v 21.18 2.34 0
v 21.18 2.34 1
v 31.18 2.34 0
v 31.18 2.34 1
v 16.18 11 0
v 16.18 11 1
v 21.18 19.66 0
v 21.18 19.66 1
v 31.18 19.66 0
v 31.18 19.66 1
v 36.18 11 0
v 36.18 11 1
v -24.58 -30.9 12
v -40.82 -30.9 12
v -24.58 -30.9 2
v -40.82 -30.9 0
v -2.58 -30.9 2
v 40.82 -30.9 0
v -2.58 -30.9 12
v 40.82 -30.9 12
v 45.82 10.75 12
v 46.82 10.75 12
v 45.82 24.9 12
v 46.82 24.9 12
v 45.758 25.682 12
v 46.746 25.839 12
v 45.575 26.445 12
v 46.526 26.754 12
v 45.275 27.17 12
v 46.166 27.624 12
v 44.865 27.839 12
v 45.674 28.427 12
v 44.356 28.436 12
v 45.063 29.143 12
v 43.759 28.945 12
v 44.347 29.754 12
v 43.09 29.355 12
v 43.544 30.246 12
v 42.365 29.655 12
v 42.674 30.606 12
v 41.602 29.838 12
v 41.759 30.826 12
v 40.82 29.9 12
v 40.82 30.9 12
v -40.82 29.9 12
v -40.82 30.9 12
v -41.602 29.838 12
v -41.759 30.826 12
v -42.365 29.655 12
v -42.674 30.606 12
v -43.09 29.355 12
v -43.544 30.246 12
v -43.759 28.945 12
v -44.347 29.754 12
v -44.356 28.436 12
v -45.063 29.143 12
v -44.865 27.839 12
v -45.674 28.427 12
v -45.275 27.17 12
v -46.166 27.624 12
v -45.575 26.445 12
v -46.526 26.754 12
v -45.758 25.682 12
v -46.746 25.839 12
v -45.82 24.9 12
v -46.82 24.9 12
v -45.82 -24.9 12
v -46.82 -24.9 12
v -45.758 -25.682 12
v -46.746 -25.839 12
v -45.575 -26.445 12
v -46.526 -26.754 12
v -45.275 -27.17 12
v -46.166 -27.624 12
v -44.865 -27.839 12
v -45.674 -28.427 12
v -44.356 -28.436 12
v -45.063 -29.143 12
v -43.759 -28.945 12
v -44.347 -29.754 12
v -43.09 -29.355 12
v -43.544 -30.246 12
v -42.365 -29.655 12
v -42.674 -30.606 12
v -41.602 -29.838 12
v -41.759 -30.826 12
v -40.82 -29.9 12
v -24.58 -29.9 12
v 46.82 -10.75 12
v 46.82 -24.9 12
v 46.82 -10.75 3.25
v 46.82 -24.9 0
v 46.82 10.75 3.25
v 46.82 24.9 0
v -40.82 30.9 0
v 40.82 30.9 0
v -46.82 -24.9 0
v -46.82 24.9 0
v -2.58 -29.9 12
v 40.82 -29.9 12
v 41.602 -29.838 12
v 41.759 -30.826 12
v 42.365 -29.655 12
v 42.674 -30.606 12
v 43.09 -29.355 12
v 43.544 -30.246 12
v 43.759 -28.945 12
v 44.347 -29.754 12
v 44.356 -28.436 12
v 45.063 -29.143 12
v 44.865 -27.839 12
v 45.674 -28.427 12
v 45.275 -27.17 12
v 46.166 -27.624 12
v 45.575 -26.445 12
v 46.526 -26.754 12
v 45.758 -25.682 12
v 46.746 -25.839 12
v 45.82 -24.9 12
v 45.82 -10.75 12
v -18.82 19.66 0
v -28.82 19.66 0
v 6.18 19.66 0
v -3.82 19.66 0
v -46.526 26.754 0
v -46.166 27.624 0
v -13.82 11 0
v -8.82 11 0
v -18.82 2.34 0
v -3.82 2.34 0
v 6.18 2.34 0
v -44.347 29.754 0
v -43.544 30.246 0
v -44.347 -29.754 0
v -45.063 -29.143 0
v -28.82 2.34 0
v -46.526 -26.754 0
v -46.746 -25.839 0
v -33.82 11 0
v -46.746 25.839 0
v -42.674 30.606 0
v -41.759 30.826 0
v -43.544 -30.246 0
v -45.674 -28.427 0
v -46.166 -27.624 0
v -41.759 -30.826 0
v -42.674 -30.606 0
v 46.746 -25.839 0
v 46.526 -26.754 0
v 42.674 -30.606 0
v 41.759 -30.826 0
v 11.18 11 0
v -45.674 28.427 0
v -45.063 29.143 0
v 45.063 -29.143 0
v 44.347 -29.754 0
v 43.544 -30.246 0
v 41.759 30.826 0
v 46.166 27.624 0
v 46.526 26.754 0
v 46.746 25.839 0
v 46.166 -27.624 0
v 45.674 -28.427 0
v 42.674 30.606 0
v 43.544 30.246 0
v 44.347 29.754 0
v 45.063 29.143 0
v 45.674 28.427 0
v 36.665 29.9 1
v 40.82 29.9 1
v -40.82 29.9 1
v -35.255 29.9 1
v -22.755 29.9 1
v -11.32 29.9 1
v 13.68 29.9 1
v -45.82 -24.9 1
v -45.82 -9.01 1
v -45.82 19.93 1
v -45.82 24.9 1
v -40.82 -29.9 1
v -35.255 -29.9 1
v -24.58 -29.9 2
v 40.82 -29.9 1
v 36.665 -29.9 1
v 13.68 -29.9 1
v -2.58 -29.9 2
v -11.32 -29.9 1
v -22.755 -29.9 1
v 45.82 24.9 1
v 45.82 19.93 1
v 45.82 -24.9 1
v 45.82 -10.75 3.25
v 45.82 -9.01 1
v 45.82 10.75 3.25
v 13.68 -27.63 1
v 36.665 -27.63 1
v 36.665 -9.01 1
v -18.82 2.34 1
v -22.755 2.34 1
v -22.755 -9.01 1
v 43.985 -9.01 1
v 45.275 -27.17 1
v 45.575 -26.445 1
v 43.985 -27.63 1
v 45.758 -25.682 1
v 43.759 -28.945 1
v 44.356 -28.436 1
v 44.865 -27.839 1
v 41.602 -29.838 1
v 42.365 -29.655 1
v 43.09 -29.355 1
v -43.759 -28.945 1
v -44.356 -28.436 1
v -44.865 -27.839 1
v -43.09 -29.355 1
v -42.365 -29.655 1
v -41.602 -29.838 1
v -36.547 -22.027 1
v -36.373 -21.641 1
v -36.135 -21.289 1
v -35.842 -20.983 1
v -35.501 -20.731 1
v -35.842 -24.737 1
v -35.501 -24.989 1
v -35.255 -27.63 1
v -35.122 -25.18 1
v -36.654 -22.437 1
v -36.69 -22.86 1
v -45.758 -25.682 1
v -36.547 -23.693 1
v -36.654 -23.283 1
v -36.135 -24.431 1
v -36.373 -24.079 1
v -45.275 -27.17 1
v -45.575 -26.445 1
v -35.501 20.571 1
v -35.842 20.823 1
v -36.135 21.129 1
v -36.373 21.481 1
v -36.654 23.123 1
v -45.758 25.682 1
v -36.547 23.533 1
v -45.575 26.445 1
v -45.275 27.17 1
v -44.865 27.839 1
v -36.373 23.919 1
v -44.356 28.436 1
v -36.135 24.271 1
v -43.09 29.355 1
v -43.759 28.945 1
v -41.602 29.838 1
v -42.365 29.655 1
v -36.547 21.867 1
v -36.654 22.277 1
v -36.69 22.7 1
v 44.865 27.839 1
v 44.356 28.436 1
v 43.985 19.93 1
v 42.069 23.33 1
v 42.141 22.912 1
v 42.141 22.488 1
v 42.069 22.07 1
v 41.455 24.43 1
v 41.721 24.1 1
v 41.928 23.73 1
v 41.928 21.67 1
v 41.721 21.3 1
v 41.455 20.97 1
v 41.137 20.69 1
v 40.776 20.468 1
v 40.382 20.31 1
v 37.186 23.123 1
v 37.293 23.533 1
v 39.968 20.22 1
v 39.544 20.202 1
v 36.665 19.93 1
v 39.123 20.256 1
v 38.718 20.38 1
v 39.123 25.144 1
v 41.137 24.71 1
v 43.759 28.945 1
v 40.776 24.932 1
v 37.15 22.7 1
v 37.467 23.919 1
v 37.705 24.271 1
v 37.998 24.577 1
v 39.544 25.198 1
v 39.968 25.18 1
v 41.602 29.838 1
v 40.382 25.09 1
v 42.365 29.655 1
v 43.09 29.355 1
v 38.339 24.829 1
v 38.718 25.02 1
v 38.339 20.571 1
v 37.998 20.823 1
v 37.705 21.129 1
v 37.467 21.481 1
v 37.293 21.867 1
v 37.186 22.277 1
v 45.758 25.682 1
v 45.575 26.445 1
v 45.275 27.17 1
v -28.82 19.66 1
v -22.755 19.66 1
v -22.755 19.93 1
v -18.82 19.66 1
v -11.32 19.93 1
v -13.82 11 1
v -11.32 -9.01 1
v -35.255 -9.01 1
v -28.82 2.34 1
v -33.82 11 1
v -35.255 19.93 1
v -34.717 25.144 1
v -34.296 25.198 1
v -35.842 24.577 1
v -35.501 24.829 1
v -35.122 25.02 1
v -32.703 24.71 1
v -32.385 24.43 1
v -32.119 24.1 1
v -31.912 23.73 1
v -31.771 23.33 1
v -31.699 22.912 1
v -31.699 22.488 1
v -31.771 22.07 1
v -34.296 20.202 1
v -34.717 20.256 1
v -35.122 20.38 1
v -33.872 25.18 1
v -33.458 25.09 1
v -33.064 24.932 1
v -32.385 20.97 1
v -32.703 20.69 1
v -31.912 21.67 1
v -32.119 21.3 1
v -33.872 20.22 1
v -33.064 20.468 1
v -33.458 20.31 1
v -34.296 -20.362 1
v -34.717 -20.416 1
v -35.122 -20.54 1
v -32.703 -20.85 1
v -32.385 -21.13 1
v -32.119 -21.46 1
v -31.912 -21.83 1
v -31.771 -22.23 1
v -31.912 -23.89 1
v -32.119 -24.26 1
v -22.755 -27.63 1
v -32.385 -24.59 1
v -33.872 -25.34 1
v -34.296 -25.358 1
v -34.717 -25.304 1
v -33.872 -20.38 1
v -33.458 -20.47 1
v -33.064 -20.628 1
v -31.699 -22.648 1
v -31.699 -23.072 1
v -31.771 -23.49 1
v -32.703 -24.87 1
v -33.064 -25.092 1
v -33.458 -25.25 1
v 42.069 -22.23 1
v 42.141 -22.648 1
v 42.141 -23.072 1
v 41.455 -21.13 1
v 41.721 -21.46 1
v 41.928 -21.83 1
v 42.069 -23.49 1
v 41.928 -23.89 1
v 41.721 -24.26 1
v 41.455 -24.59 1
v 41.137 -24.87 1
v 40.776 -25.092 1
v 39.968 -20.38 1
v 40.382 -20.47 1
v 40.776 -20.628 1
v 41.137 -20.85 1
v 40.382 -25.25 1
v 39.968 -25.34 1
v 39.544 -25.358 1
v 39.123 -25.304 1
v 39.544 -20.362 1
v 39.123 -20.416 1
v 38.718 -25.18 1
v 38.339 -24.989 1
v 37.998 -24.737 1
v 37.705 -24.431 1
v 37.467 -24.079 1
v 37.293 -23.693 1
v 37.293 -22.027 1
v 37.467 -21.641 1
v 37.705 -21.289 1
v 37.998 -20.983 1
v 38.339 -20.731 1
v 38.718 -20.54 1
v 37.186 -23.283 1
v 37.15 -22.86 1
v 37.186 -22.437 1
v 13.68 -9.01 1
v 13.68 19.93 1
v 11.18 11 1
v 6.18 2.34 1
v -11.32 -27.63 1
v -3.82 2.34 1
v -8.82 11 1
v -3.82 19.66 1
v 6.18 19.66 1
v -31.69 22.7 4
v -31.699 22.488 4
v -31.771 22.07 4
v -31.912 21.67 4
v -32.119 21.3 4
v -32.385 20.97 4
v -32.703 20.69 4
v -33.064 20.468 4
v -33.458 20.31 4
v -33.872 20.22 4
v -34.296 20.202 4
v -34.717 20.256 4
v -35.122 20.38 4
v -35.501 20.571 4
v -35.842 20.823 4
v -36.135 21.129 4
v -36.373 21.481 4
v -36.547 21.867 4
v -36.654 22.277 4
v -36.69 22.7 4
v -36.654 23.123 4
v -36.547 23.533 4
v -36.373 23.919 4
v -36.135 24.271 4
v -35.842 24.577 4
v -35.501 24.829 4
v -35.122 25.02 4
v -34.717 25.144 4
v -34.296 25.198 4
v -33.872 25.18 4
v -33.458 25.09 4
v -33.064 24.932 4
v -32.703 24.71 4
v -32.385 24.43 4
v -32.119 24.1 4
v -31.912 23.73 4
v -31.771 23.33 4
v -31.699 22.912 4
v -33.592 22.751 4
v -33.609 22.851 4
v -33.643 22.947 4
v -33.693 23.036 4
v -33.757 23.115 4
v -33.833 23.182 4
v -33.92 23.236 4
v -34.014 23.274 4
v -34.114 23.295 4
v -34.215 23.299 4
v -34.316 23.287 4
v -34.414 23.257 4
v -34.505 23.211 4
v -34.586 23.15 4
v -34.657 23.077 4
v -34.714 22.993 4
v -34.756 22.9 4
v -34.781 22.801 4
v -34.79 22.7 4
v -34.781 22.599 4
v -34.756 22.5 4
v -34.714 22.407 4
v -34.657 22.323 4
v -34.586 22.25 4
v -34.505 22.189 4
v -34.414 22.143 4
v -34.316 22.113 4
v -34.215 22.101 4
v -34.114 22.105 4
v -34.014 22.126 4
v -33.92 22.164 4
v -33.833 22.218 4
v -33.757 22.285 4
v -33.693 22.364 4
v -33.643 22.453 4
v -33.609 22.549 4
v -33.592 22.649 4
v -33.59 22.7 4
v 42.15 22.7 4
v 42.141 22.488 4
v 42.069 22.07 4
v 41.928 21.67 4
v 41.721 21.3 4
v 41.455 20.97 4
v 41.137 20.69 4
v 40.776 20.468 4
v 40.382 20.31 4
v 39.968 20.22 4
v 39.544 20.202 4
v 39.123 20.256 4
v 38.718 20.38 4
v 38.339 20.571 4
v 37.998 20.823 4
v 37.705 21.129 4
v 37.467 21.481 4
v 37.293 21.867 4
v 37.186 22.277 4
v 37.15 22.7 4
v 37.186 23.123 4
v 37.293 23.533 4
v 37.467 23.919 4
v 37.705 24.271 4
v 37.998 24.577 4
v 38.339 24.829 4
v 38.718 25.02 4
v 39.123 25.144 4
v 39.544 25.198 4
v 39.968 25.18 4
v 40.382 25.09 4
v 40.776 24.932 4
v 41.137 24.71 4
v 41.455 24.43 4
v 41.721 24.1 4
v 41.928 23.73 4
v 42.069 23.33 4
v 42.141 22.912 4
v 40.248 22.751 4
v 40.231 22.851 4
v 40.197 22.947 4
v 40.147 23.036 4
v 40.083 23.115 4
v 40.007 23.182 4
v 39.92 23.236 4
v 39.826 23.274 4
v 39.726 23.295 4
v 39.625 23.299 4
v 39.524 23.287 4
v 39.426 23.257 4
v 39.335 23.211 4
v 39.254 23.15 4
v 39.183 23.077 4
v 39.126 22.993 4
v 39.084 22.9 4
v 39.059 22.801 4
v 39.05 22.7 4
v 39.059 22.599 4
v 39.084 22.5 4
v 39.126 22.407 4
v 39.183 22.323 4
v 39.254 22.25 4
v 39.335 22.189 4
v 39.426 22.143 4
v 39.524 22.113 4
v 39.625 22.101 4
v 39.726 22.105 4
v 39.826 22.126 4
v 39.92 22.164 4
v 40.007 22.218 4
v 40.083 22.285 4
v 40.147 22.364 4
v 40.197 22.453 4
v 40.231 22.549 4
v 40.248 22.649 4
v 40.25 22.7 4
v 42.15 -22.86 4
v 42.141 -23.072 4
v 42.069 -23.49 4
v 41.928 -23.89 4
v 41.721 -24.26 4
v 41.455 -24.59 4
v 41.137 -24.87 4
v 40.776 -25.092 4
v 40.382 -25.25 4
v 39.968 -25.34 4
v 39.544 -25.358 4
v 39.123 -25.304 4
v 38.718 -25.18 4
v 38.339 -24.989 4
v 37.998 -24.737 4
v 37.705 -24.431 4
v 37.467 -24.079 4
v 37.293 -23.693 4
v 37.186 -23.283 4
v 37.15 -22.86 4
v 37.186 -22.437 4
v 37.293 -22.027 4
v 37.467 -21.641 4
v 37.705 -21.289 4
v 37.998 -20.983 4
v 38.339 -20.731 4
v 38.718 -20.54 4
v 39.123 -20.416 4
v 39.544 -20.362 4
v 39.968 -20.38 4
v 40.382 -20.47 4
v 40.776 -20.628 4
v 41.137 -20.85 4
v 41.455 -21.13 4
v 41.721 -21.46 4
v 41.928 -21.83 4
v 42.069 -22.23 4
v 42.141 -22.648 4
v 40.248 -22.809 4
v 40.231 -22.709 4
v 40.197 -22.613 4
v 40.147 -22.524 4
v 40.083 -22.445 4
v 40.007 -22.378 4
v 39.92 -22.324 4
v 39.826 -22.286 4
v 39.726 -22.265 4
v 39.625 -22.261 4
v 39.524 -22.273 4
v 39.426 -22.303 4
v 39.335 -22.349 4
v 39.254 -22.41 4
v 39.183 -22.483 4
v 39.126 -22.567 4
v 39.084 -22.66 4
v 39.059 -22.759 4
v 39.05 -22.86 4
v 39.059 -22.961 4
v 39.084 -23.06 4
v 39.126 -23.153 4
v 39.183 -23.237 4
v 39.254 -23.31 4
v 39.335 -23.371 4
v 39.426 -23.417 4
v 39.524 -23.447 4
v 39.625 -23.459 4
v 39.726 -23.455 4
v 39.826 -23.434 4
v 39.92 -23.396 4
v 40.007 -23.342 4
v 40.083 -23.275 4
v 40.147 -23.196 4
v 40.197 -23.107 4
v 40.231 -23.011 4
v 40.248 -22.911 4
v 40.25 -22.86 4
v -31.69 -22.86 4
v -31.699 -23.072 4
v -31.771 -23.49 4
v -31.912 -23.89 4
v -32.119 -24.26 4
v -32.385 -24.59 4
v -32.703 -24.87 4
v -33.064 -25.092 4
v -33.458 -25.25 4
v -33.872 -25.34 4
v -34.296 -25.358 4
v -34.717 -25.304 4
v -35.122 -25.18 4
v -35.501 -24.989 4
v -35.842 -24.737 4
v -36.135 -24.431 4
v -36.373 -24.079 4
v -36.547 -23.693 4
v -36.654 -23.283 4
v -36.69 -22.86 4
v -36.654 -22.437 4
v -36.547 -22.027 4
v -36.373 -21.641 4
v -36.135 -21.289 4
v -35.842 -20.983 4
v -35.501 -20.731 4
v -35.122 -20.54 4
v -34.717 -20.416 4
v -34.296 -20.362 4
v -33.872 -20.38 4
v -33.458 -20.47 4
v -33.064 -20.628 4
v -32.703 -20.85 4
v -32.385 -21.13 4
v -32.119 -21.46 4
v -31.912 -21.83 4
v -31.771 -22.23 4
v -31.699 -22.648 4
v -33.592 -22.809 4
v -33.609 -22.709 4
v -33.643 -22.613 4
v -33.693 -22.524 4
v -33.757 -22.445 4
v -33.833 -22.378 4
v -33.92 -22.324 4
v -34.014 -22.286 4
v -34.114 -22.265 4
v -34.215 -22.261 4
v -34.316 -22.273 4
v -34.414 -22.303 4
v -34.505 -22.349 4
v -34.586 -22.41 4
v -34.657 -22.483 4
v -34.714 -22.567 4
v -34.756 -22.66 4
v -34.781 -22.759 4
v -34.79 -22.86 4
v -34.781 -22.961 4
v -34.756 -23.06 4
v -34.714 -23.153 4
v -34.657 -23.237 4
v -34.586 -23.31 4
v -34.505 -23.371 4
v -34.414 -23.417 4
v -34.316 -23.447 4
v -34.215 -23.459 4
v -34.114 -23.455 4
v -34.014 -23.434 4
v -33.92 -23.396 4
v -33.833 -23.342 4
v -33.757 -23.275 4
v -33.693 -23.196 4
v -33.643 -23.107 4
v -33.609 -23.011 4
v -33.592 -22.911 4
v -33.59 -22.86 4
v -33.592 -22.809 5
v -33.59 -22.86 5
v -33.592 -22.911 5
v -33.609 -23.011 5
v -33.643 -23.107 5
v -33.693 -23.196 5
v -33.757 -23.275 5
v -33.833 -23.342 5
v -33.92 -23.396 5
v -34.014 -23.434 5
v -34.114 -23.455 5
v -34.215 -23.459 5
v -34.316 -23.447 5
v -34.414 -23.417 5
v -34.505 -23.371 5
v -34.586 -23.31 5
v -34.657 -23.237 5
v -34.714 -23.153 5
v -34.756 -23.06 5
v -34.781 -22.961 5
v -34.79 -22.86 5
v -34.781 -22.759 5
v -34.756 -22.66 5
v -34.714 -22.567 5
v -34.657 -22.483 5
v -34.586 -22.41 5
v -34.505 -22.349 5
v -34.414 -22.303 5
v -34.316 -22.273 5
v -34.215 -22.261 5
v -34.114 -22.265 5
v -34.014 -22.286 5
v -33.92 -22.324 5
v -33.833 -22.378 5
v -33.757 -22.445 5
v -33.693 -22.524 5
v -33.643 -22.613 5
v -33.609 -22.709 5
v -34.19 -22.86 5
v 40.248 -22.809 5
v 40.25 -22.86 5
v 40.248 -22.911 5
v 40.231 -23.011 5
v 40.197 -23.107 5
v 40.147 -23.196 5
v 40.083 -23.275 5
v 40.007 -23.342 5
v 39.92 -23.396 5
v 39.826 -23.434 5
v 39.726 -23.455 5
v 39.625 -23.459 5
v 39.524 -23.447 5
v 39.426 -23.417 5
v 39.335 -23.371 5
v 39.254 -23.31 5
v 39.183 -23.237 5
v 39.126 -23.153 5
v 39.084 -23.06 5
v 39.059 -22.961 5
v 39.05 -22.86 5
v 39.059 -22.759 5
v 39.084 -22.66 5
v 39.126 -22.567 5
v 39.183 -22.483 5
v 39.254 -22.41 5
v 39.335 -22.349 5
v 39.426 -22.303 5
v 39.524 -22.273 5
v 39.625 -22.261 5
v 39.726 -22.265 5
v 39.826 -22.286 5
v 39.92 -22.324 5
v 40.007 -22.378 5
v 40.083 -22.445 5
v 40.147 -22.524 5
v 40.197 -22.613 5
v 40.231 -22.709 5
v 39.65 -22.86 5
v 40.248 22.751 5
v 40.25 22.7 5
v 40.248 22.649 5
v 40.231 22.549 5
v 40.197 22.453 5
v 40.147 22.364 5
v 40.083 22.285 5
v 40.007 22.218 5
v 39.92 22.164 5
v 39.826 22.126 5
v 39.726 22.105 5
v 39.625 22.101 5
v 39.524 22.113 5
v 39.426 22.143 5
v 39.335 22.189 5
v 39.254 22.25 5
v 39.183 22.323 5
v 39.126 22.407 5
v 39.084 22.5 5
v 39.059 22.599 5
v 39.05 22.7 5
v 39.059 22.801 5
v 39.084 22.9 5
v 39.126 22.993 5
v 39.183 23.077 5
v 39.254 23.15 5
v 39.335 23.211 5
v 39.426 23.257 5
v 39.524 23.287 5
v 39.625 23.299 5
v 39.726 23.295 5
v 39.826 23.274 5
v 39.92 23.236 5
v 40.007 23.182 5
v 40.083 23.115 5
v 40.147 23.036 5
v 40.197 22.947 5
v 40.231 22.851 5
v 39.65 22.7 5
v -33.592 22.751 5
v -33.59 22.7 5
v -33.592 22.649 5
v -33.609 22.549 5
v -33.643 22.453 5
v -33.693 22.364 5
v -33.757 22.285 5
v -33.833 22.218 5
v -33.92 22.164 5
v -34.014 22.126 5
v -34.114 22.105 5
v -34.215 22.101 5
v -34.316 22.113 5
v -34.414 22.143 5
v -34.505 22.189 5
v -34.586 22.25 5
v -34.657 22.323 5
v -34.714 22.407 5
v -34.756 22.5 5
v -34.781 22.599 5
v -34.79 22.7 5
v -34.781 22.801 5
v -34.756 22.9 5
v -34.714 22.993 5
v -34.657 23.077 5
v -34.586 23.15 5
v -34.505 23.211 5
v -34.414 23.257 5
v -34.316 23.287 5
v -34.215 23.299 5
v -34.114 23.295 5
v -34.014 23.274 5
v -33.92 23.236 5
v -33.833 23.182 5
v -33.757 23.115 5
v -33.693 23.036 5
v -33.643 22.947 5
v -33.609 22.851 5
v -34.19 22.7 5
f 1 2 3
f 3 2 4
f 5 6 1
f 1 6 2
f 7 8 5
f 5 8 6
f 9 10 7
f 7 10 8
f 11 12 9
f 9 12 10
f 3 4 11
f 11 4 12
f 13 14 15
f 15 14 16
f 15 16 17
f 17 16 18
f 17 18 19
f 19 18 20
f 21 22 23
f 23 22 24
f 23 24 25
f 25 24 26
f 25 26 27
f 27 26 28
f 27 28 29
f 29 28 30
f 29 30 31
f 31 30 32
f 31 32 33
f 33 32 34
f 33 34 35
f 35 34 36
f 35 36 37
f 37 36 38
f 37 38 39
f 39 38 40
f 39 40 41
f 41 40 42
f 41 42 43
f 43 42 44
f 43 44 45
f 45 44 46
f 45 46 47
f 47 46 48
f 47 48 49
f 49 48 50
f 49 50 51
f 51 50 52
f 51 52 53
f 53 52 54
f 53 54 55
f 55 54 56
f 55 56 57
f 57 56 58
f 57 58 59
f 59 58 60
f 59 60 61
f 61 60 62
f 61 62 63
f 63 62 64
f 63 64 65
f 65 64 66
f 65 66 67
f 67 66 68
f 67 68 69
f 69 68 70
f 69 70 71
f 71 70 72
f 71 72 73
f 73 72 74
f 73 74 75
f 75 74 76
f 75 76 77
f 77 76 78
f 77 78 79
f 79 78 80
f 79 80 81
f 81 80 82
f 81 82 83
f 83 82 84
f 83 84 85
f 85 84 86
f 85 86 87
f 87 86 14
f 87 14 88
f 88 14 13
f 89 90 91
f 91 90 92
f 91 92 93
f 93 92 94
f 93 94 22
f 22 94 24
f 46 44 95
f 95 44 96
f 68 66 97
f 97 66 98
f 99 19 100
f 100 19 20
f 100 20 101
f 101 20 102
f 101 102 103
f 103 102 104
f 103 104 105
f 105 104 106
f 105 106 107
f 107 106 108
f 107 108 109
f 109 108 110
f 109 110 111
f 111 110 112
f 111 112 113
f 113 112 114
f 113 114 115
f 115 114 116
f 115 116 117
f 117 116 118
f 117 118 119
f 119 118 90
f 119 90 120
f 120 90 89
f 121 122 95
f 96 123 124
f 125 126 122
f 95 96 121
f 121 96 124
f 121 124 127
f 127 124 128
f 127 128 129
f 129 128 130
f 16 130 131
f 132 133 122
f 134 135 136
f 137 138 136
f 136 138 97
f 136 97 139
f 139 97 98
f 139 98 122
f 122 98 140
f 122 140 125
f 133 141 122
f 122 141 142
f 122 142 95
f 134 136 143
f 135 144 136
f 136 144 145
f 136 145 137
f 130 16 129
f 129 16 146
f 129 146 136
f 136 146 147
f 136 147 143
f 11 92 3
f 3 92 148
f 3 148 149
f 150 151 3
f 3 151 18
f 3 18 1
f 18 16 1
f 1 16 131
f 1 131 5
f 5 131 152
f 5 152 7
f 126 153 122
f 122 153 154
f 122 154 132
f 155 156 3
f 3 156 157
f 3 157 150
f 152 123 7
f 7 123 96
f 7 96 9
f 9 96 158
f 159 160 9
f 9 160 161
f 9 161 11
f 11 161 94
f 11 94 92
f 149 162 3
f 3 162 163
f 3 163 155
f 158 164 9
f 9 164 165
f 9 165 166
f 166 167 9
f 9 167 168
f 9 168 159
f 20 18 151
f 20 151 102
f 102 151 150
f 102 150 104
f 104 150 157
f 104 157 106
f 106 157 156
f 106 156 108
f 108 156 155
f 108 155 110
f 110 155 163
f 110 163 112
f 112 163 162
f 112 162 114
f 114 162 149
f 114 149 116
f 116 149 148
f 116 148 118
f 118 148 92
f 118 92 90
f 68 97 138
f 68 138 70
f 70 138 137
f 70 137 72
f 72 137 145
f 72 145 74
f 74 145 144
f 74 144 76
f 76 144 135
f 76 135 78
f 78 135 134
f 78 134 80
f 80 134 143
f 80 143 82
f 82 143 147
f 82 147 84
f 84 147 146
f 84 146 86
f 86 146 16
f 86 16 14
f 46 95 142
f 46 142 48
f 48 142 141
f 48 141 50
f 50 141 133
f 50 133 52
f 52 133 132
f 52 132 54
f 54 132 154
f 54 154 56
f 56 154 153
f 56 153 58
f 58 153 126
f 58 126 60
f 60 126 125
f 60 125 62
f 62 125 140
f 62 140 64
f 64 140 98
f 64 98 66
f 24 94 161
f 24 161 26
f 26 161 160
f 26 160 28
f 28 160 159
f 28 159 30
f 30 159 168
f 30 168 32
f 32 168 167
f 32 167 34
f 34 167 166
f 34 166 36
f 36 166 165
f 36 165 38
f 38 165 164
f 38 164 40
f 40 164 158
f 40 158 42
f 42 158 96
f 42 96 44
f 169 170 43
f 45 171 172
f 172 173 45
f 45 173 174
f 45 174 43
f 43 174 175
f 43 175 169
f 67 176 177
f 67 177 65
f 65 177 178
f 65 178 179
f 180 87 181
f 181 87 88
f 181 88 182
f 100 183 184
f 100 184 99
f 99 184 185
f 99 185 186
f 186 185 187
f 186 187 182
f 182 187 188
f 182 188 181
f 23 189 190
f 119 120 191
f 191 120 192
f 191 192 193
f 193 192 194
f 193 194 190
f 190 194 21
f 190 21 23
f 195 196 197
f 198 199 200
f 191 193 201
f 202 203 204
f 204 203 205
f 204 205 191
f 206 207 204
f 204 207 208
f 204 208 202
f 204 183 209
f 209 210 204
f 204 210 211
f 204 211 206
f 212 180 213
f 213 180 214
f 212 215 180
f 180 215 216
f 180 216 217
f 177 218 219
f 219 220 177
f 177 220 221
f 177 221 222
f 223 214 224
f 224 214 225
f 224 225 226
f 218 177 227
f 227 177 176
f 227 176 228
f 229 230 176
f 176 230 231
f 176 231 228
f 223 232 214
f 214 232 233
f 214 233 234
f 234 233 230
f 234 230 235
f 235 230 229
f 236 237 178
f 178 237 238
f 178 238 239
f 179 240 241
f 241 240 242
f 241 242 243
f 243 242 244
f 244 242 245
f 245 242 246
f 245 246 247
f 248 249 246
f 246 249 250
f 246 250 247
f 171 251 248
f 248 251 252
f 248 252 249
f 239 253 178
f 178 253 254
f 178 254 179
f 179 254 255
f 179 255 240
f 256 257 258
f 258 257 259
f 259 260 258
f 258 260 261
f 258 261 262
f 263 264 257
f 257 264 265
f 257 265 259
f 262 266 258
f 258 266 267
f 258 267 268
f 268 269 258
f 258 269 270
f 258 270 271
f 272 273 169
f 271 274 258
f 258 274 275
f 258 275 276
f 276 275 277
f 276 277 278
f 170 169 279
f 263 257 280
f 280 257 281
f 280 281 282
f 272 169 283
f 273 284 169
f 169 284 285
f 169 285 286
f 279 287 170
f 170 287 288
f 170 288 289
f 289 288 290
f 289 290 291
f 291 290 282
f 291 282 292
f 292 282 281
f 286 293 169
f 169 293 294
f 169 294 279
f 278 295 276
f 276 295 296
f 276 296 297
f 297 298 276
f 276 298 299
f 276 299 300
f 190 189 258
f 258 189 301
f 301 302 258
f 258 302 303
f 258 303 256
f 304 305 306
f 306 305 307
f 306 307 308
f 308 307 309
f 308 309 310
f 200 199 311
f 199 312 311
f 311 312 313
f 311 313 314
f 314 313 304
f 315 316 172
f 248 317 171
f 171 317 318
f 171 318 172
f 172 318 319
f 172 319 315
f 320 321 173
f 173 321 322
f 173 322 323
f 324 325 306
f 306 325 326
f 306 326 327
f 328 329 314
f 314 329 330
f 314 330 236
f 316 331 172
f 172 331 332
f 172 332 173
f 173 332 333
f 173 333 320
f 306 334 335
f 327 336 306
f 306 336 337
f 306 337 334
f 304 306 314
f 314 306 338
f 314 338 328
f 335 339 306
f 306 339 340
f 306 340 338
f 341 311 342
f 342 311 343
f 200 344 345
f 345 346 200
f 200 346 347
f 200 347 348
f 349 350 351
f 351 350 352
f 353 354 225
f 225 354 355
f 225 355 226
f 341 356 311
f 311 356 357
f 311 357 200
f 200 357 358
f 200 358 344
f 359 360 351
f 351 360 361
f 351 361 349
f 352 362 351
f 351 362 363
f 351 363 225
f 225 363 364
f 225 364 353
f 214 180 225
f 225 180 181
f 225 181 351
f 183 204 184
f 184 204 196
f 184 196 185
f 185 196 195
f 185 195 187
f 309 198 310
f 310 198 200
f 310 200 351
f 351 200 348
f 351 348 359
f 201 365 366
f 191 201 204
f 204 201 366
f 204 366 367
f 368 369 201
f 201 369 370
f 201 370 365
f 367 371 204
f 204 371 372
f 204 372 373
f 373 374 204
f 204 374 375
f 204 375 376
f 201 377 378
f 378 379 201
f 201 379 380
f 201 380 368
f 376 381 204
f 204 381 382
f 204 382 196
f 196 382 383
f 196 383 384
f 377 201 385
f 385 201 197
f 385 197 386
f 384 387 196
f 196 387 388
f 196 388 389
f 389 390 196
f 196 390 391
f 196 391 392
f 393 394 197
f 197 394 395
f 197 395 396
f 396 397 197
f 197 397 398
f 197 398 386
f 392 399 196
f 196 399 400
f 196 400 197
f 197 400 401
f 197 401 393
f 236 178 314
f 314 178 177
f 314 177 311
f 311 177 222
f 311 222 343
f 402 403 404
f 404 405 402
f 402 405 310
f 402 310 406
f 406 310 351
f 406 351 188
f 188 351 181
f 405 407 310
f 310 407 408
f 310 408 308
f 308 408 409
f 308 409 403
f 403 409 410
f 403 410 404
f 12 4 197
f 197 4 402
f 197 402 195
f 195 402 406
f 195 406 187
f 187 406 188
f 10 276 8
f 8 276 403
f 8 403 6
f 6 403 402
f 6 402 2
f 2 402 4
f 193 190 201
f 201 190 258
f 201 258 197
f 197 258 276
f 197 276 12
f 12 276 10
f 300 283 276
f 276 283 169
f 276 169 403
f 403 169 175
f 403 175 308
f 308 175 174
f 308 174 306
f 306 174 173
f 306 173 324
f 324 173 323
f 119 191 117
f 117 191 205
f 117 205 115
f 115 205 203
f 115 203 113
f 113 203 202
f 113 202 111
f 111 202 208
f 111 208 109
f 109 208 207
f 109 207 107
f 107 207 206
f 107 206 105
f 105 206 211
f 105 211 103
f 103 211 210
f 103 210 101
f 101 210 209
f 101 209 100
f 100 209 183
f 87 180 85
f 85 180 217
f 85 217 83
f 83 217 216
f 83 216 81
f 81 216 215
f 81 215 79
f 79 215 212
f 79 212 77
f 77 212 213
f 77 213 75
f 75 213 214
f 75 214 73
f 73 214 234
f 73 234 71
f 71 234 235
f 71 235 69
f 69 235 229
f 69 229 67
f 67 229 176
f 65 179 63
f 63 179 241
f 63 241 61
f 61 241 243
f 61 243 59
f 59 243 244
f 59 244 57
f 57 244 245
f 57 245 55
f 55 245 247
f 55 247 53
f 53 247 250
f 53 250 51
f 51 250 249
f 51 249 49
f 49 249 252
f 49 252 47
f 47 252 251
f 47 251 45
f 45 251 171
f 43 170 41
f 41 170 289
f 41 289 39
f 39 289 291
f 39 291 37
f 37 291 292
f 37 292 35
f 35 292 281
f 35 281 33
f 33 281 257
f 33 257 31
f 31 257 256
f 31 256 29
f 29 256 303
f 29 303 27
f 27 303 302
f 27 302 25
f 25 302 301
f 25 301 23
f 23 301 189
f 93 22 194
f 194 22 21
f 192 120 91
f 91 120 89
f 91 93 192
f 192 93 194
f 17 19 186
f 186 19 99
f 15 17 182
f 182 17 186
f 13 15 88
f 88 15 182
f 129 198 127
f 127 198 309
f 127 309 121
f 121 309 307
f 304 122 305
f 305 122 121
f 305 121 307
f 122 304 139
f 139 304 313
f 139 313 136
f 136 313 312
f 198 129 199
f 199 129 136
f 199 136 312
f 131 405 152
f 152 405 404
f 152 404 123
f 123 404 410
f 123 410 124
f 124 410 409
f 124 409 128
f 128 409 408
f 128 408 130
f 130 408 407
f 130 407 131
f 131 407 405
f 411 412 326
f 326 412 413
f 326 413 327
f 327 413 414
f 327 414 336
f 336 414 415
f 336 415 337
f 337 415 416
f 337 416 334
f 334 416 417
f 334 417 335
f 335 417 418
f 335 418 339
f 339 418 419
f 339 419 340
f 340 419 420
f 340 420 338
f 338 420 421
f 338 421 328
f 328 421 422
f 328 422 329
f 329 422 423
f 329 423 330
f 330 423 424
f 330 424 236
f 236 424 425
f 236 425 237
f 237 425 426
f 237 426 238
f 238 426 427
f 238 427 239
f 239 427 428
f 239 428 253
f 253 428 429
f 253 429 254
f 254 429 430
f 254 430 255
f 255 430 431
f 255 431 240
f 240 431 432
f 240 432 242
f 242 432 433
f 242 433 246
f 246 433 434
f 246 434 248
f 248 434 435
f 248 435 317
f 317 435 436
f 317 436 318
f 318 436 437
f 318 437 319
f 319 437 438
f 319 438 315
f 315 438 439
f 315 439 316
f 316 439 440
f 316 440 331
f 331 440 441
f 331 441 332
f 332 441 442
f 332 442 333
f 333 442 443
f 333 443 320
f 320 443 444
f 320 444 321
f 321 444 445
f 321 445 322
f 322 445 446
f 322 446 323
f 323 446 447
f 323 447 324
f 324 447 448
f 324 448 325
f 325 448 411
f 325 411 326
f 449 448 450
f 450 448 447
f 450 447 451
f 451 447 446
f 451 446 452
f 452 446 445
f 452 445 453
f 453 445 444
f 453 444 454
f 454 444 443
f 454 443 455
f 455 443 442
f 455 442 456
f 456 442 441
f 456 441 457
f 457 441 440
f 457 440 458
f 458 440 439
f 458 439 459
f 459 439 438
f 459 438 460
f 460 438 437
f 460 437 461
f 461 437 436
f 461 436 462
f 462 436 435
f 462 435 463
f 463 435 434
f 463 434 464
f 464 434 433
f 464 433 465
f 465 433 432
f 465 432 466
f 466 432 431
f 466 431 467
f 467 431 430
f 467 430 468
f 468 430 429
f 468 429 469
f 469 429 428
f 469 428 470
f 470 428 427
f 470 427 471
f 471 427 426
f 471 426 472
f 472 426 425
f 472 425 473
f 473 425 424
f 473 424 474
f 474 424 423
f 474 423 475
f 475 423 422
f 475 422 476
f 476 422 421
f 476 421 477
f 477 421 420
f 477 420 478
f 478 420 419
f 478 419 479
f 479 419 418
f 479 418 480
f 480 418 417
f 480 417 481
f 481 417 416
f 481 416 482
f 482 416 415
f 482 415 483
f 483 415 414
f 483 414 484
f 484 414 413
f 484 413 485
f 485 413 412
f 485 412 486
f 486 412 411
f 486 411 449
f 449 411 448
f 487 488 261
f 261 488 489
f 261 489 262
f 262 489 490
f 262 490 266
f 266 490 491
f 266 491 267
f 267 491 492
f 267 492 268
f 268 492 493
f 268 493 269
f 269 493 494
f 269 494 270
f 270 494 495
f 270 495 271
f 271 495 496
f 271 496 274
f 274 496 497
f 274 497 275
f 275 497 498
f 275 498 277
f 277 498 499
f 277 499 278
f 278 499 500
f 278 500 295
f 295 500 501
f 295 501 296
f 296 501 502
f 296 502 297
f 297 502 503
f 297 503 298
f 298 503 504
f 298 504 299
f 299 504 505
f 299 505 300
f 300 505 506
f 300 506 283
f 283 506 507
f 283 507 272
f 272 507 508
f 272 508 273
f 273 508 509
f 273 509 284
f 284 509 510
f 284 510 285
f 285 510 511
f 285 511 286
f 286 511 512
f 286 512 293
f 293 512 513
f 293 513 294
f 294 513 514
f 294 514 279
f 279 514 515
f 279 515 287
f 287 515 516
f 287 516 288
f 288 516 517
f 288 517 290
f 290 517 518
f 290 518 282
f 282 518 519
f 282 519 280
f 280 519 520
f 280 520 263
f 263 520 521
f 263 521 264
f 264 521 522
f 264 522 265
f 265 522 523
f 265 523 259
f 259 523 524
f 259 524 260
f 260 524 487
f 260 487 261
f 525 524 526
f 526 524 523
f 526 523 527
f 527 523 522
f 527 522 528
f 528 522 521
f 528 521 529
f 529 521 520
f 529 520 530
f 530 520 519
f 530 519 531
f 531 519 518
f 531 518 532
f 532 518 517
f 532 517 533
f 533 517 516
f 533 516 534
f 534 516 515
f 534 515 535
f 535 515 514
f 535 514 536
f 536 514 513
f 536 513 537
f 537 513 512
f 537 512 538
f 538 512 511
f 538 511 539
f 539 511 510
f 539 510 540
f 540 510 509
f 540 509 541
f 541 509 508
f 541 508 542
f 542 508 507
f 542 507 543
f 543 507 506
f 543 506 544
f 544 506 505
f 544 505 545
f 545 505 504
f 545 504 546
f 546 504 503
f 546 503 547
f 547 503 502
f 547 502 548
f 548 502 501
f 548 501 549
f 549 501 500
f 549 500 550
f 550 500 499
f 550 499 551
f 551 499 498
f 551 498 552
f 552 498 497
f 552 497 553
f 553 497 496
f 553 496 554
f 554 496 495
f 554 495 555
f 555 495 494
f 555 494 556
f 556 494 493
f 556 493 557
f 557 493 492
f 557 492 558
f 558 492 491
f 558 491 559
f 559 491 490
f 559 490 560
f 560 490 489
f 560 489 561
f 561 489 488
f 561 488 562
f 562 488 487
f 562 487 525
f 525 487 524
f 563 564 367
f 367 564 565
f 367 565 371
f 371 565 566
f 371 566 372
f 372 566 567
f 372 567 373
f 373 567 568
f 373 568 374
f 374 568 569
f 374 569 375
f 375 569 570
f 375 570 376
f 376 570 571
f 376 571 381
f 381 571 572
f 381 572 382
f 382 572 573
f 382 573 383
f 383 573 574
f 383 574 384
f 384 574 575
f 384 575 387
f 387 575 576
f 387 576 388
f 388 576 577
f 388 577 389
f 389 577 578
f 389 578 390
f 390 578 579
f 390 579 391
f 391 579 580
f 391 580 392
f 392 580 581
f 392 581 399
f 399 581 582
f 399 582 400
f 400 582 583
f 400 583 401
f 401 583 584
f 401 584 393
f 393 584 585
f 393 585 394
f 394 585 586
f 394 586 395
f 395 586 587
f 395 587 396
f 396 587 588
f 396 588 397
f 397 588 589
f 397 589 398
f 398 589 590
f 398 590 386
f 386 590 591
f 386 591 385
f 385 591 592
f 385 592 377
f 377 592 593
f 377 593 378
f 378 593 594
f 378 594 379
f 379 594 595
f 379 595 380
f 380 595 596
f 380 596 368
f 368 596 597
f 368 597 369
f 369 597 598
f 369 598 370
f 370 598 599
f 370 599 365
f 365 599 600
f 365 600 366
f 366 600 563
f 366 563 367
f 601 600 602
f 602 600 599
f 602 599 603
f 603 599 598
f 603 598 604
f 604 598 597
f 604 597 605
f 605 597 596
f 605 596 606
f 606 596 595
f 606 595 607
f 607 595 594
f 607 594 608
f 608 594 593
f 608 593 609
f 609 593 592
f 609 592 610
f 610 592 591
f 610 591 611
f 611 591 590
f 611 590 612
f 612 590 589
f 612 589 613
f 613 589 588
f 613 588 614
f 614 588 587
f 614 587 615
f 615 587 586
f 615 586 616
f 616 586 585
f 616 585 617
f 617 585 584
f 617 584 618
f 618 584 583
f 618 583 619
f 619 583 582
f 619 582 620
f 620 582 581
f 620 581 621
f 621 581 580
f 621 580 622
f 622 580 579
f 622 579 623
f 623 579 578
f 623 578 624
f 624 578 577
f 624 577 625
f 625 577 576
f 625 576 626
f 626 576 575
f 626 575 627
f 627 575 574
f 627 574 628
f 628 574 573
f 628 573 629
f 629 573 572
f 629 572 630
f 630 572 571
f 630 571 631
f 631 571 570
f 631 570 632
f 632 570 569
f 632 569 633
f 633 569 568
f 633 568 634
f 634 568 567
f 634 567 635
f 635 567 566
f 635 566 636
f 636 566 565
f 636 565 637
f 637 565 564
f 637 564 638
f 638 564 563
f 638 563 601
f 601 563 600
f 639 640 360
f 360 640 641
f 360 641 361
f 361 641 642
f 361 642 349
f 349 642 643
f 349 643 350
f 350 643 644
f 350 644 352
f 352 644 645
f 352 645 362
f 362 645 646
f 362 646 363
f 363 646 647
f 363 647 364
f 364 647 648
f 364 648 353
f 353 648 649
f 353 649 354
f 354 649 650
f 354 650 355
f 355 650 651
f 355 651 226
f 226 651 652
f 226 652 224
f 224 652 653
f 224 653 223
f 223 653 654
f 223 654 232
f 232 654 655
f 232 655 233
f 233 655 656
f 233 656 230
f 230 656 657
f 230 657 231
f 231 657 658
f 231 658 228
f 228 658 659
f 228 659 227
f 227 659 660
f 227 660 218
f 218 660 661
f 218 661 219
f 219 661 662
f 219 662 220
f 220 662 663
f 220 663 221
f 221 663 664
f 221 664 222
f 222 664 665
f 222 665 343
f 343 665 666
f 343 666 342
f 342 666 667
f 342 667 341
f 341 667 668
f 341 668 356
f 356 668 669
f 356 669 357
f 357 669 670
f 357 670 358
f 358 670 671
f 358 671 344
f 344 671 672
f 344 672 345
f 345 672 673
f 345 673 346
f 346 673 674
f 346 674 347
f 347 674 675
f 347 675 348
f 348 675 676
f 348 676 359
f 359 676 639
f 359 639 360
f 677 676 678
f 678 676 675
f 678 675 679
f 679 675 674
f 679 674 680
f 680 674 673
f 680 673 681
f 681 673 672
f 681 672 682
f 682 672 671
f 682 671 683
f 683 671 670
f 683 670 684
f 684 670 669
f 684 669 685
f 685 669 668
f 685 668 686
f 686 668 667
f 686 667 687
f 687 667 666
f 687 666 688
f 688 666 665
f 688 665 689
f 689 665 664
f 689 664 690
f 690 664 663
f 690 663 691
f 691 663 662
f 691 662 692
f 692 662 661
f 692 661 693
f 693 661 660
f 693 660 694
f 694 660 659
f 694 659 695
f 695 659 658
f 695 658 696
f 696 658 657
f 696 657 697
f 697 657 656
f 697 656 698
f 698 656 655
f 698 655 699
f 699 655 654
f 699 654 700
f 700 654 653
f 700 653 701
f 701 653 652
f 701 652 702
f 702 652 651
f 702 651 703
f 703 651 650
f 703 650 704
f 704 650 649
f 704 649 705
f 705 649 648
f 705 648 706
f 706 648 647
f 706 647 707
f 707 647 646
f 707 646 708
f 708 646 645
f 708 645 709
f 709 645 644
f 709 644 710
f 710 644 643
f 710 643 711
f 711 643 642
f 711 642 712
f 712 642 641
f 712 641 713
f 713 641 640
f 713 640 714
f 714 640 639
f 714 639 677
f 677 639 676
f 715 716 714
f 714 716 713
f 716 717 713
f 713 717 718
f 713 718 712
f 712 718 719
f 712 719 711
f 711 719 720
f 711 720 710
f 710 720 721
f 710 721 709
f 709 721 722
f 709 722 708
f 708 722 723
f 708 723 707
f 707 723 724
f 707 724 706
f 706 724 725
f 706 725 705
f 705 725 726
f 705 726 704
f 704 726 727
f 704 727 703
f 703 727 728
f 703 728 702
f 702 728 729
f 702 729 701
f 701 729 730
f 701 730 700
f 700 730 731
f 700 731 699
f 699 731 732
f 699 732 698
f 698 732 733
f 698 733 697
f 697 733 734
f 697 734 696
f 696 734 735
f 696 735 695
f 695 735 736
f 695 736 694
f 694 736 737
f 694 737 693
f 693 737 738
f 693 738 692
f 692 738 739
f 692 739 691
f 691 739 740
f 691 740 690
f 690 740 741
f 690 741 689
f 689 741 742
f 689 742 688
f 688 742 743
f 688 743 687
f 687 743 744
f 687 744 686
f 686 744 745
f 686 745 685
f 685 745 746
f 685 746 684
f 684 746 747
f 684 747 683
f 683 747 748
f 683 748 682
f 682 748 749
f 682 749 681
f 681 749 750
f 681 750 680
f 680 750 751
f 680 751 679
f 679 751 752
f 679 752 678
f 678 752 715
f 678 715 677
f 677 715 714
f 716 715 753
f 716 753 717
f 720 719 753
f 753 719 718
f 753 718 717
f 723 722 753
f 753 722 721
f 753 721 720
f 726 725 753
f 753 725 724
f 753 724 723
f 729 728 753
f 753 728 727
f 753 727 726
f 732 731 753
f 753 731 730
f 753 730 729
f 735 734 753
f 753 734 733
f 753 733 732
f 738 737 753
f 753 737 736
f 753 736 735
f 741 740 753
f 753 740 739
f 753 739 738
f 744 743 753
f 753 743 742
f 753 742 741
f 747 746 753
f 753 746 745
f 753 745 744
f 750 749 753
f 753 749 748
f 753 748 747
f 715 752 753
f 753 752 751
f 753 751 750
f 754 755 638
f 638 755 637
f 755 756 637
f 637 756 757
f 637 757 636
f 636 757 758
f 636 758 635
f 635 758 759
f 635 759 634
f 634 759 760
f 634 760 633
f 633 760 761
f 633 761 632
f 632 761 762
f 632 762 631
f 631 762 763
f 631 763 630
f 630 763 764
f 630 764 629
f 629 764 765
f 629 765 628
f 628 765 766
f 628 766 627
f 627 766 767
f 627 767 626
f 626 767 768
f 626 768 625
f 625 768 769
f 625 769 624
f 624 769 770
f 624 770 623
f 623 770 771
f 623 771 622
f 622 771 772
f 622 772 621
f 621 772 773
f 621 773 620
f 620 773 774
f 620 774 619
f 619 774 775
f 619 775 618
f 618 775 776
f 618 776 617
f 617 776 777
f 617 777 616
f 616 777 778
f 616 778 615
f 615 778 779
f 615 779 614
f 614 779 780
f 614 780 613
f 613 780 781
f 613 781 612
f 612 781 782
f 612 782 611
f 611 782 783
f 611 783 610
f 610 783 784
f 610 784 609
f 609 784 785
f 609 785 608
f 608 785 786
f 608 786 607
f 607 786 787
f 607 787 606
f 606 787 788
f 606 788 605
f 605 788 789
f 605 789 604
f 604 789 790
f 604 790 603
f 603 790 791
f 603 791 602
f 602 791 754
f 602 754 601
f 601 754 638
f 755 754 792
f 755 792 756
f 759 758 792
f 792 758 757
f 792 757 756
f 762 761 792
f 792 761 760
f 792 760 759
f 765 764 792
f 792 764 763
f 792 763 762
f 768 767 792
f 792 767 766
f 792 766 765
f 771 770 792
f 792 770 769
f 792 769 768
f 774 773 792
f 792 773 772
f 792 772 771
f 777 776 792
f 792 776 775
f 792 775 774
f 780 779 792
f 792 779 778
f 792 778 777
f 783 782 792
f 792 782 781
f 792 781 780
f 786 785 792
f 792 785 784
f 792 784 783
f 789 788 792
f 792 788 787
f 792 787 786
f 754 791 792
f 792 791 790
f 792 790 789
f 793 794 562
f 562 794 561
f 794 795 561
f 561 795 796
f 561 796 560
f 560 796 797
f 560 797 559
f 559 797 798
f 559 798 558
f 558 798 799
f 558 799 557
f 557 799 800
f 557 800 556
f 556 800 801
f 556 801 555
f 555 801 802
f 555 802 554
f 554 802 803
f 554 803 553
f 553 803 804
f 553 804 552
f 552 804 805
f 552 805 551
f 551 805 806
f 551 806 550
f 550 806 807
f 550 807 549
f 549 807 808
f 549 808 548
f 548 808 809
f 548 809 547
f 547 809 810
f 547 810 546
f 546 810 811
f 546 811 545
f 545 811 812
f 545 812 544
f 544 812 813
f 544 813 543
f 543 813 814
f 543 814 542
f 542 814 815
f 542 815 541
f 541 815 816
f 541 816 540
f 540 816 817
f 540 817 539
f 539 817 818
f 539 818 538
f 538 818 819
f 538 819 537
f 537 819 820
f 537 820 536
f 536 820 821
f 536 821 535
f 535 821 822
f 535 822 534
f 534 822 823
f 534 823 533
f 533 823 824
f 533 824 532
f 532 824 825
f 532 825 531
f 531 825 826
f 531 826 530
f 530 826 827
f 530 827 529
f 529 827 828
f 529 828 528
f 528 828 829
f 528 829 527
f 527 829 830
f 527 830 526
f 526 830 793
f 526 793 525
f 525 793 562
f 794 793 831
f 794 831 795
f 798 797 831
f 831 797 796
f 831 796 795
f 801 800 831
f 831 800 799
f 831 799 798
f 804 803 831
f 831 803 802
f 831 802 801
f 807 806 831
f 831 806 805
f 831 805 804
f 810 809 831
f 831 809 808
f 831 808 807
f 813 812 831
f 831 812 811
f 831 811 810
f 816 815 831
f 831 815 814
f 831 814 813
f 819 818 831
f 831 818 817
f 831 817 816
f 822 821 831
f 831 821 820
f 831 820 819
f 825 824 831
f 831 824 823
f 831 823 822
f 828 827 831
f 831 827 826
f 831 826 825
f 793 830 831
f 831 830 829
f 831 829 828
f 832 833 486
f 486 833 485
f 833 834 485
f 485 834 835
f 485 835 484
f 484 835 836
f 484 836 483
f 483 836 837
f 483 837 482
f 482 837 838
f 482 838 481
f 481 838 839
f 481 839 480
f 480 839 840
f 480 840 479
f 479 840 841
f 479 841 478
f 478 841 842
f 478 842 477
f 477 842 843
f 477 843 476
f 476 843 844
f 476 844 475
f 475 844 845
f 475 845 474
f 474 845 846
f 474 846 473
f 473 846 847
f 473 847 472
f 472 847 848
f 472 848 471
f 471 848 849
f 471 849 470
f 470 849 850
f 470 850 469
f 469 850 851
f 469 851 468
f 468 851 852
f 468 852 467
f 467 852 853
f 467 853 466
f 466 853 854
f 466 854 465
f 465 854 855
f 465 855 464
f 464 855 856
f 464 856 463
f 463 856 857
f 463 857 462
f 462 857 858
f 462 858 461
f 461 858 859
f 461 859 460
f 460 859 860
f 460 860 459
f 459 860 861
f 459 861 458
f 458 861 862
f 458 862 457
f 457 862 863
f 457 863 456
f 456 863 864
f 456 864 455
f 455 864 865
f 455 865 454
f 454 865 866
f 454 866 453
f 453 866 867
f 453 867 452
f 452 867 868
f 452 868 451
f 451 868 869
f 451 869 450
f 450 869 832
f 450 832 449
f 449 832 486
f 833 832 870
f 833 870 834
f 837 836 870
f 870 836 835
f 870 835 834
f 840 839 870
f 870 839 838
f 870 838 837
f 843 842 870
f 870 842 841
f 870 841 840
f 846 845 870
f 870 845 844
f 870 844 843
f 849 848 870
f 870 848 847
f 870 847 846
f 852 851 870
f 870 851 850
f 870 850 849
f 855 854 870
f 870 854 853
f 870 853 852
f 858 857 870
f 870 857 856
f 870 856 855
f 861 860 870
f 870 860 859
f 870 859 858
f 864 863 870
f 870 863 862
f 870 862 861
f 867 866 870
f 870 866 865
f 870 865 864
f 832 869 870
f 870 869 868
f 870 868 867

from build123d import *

# Parameters (mm, degrees)
SKIZZE1_W                       = 61.8
SKIZZE1_H                       = 93.64
AUFSATZ_LINEAR_AUSTRAGEN1_DEPTH = 12
VERRUNDUNG1_R                   = 6
WANDUNG1_T                      = -1
SKIZZE2_W                       = 21.5
SKIZZE2_H                       = 17.5
SCHNITT_LINEAR_AUSTRAGEN1_DEPTH = 6
SKIZZE3_W                       = 22
SKIZZE3_H                       = 10
SCHNITT_LINEAR_AUSTRAGEN2_DEPTH = 6
SCHNITT_LINEAR_AUSTRAGEN4_DEPTH = 6
LINEARES_MUSTER1_COUNT          = 3
LINEARES_MUSTER1_PITCH          = 25
SKIZZE5_R                       = 2.5
AUFSATZ_LINEAR_AUSTRAGEN2_DEPTH = 3
SKIZZE6_R                       = 0.6
AUFSATZ_LINEAR_AUSTRAGEN3_DEPTH = 1


with BuildPart() as part:
    # Skizze1 → Aufsatz-Linear austragen1 (new body)
    with BuildSketch(Plane(origin=(0, 0, 0), x_dir=(0, 1, 0), z_dir=(0, 0, 1))):
        Rectangle(SKIZZE1_W, SKIZZE1_H)
    extrude(amount=AUFSATZ_LINEAR_AUSTRAGEN1_DEPTH)

    # Verrundung1
    verrundung1_edges = [part.edges().sort_by_distance(p)[0] for p in [
        (46.82, 30.9, 6),
        (46.82, -30.9, 6),
        (-46.82, -30.9, 6),
        (-46.82, 30.9, 6),
    ]]
    fillet(verrundung1_edges, radius=VERRUNDUNG1_R)

    # Wandung1
    wandung1_openings = [part.faces().sort_by_distance(p)[0] for p in [
        (0, 0, 12),
    ]]
    offset(amount=WANDUNG1_T, openings=wandung1_openings, kind=Kind.INTERSECTION)

    # Skizze2 → Schnitt-Linear austragen1 (cut)
    with BuildSketch(Plane.YZ.offset(46.82)):
        with Locations((0, 12)):
            Rectangle(SKIZZE2_W, SKIZZE2_H)
    extrude(amount=-SCHNITT_LINEAR_AUSTRAGEN1_DEPTH, mode=Mode.SUBTRACT)

    # Skizze3 → Schnitt-Linear austragen2 (cut)
    with BuildSketch(Plane.XZ.offset(30.9)):
        with Locations((-13.58, 7)):
            Rectangle(SKIZZE3_W, SKIZZE3_H)
    extrude(amount=-SCHNITT_LINEAR_AUSTRAGEN2_DEPTH, mode=Mode.SUBTRACT)

    # Skizze4 → Schnitt-Linear austragen4 (cut)
    with BuildSketch(Plane(origin=(0, 0, 0), x_dir=(1, 0, 0), z_dir=(0, 0, -1))):
        Polygon((-18.82, -2.339745962), (-28.82, -2.339745962), (-33.82, -11), (-28.82, -19.660254038), (-18.82, -19.660254038), (-13.82, -11), align=None)
    schnitt_linear_austragen4 = extrude(amount=-SCHNITT_LINEAR_AUSTRAGEN4_DEPTH, mode=Mode.SUBTRACT)

    # Lineares Muster1: Schnitt-Linear austragen4 ×3
    with Locations(*[(i * LINEARES_MUSTER1_PITCH, 0, 0) for i in range(1, LINEARES_MUSTER1_COUNT)]):
        add(schnitt_linear_austragen4, mode=Mode.SUBTRACT)

    # Skizze5 → Aufsatz-Linear austragen2 (add)
    with BuildSketch(Plane.XY.offset(1)):
        with Locations(Location((-34.19, 22.7, 0), (0, 0, 180))):
            Circle(SKIZZE5_R)
        with Locations(Location((39.65, 22.7, 0), (0, 0, 180))):
            Circle(SKIZZE5_R)
        with Locations(Location((39.65, -22.86, 0), (0, 0, 180))):
            Circle(SKIZZE5_R)
        with Locations(Location((-34.19, -22.86, 0), (0, 0, 180))):
            Circle(SKIZZE5_R)
    extrude(amount=AUFSATZ_LINEAR_AUSTRAGEN2_DEPTH)

    # Skizze6 → Aufsatz-Linear austragen3 (add)
    with BuildSketch(Plane.XY.offset(4)):
        with Locations((-34.19, 22.7)):
            Circle(SKIZZE6_R)
        with Locations((-34.19, -22.86)):
            Circle(SKIZZE6_R)
        with Locations((39.65, -22.86)):
            Circle(SKIZZE6_R)
        with Locations((39.65, 22.7)):
            Circle(SKIZZE6_R)
    extrude(amount=AUFSATZ_LINEAR_AUSTRAGEN3_DEPTH)


solid = part.part
